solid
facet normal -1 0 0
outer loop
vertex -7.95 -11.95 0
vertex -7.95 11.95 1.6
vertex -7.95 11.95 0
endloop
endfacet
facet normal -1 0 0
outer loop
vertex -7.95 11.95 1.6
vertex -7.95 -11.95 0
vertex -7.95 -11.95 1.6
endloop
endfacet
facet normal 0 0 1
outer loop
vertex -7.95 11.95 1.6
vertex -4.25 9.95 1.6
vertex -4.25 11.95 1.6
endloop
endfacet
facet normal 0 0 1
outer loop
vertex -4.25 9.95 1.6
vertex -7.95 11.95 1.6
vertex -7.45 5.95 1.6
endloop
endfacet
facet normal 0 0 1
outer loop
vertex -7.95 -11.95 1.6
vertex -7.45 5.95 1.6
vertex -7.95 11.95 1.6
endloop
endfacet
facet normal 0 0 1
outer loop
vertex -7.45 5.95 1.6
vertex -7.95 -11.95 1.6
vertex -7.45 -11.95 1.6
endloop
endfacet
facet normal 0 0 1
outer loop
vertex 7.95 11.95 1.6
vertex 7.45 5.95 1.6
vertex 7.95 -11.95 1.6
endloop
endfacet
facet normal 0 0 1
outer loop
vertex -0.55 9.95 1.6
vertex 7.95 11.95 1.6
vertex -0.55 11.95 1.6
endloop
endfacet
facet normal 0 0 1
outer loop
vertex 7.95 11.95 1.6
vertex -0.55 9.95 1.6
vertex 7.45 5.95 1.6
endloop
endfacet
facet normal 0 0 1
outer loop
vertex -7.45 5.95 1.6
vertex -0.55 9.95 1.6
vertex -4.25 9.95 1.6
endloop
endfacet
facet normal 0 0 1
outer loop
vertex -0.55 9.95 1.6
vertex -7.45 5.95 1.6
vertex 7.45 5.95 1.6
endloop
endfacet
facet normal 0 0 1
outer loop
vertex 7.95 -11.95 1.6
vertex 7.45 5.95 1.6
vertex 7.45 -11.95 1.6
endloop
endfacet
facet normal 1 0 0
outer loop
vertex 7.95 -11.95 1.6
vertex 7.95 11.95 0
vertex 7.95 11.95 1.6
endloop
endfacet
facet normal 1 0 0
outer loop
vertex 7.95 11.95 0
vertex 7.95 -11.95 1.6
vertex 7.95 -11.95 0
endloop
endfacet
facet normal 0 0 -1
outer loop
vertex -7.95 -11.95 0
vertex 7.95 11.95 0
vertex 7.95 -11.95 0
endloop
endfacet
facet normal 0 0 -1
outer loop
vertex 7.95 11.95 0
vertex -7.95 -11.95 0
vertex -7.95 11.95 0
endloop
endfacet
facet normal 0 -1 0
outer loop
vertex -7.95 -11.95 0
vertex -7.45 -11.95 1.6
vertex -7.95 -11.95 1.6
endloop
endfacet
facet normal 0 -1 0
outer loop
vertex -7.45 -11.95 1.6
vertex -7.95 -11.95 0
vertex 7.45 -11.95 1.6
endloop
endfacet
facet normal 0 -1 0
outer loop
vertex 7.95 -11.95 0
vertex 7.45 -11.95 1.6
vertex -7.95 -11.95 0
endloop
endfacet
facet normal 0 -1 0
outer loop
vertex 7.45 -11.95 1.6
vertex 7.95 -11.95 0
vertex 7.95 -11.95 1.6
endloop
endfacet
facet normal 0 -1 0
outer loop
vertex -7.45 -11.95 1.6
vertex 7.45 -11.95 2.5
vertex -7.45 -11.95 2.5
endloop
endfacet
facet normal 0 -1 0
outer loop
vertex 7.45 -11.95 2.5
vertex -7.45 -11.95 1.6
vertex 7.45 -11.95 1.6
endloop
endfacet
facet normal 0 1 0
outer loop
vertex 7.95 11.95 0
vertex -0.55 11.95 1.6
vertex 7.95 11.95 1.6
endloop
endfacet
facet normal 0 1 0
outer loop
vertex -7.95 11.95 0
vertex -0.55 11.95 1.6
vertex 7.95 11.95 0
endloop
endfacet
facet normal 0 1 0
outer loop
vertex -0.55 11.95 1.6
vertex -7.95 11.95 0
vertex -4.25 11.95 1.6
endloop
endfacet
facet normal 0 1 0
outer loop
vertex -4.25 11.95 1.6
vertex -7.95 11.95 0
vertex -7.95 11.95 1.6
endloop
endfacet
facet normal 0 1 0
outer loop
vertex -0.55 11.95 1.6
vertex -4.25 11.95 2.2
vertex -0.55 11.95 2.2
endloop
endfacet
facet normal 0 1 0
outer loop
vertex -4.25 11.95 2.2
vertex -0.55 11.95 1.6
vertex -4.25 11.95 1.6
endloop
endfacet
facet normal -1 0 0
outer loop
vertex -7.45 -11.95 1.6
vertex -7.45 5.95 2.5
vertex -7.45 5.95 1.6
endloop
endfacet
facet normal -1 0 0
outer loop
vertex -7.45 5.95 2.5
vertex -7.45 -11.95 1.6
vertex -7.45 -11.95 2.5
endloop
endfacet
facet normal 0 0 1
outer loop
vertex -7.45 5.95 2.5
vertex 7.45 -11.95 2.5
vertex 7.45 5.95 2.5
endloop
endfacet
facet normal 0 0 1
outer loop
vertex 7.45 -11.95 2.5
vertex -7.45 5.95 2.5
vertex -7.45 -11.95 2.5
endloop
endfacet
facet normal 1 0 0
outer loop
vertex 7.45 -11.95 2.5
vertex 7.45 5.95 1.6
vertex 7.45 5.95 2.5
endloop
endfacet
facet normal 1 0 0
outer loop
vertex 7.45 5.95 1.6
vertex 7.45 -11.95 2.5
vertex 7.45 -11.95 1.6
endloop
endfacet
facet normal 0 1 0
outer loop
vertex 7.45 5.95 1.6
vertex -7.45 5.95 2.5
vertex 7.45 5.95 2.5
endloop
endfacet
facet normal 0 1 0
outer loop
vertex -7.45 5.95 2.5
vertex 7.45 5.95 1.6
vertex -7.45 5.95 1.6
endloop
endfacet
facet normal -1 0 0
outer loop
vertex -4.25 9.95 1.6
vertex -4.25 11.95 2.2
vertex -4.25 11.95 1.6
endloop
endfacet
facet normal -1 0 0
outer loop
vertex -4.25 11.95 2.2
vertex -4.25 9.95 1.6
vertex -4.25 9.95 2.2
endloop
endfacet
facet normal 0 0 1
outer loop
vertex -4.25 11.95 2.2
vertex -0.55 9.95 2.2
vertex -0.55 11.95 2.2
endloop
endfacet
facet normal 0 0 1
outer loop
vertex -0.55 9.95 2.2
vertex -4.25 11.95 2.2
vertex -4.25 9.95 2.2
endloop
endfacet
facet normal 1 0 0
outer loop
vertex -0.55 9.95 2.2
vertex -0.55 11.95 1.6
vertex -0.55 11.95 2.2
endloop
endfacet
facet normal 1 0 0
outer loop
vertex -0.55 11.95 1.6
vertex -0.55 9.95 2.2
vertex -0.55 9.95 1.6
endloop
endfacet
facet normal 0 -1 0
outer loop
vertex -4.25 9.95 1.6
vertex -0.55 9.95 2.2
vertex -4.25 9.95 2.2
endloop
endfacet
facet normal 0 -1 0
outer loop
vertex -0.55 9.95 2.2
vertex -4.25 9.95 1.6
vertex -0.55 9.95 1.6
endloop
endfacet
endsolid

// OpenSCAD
scale = 1;
mm = 1 * scale;

WT32_BASE_WIDTH  = 15.90 * mm;
WT32_BASE_LENGTH = 23.90 * mm;
WT32_BASE_HEIGHT = 1.6 * mm;

WT32_COVER_WIDTH  = 14.90 * mm;
WT32_COVER_LENGTH = 17.90 * mm;
WT32_COVER_HEIGHT = 0.90 * mm;

WT32_ANTENNA_WIDTH  = 3.7 * mm;
WT32_ANTENNA_LENGTH = 2.0 * mm;
WT32_ANTENNA_HEIGHT = 0.60 * mm;
WT32_ANTENNA_X_CENTER = -2.40 * mm;


translate([0,0,WT32_BASE_HEIGHT/2]){
cube([WT32_BASE_WIDTH,WT32_BASE_LENGTH,WT32_BASE_HEIGHT], center = true);
    translate([0,
               (WT32_COVER_LENGTH - WT32_BASE_LENGTH) / 2,
                (WT32_BASE_HEIGHT + WT32_COVER_HEIGHT) / 2]){
                    cube([WT32_COVER_WIDTH,WT32_COVER_LENGTH, WT32_COVER_HEIGHT], center = true);
                }
                translate([WT32_ANTENNA_X_CENTER,
               (WT32_BASE_LENGTH - WT32_ANTENNA_LENGTH) / 2,
                (WT32_BASE_HEIGHT + WT32_ANTENNA_HEIGHT) / 2]){
                    cube([WT32_ANTENNA_WIDTH,WT32_ANTENNA_LENGTH, WT32_ANTENNA_HEIGHT], center = true);
                }
}
